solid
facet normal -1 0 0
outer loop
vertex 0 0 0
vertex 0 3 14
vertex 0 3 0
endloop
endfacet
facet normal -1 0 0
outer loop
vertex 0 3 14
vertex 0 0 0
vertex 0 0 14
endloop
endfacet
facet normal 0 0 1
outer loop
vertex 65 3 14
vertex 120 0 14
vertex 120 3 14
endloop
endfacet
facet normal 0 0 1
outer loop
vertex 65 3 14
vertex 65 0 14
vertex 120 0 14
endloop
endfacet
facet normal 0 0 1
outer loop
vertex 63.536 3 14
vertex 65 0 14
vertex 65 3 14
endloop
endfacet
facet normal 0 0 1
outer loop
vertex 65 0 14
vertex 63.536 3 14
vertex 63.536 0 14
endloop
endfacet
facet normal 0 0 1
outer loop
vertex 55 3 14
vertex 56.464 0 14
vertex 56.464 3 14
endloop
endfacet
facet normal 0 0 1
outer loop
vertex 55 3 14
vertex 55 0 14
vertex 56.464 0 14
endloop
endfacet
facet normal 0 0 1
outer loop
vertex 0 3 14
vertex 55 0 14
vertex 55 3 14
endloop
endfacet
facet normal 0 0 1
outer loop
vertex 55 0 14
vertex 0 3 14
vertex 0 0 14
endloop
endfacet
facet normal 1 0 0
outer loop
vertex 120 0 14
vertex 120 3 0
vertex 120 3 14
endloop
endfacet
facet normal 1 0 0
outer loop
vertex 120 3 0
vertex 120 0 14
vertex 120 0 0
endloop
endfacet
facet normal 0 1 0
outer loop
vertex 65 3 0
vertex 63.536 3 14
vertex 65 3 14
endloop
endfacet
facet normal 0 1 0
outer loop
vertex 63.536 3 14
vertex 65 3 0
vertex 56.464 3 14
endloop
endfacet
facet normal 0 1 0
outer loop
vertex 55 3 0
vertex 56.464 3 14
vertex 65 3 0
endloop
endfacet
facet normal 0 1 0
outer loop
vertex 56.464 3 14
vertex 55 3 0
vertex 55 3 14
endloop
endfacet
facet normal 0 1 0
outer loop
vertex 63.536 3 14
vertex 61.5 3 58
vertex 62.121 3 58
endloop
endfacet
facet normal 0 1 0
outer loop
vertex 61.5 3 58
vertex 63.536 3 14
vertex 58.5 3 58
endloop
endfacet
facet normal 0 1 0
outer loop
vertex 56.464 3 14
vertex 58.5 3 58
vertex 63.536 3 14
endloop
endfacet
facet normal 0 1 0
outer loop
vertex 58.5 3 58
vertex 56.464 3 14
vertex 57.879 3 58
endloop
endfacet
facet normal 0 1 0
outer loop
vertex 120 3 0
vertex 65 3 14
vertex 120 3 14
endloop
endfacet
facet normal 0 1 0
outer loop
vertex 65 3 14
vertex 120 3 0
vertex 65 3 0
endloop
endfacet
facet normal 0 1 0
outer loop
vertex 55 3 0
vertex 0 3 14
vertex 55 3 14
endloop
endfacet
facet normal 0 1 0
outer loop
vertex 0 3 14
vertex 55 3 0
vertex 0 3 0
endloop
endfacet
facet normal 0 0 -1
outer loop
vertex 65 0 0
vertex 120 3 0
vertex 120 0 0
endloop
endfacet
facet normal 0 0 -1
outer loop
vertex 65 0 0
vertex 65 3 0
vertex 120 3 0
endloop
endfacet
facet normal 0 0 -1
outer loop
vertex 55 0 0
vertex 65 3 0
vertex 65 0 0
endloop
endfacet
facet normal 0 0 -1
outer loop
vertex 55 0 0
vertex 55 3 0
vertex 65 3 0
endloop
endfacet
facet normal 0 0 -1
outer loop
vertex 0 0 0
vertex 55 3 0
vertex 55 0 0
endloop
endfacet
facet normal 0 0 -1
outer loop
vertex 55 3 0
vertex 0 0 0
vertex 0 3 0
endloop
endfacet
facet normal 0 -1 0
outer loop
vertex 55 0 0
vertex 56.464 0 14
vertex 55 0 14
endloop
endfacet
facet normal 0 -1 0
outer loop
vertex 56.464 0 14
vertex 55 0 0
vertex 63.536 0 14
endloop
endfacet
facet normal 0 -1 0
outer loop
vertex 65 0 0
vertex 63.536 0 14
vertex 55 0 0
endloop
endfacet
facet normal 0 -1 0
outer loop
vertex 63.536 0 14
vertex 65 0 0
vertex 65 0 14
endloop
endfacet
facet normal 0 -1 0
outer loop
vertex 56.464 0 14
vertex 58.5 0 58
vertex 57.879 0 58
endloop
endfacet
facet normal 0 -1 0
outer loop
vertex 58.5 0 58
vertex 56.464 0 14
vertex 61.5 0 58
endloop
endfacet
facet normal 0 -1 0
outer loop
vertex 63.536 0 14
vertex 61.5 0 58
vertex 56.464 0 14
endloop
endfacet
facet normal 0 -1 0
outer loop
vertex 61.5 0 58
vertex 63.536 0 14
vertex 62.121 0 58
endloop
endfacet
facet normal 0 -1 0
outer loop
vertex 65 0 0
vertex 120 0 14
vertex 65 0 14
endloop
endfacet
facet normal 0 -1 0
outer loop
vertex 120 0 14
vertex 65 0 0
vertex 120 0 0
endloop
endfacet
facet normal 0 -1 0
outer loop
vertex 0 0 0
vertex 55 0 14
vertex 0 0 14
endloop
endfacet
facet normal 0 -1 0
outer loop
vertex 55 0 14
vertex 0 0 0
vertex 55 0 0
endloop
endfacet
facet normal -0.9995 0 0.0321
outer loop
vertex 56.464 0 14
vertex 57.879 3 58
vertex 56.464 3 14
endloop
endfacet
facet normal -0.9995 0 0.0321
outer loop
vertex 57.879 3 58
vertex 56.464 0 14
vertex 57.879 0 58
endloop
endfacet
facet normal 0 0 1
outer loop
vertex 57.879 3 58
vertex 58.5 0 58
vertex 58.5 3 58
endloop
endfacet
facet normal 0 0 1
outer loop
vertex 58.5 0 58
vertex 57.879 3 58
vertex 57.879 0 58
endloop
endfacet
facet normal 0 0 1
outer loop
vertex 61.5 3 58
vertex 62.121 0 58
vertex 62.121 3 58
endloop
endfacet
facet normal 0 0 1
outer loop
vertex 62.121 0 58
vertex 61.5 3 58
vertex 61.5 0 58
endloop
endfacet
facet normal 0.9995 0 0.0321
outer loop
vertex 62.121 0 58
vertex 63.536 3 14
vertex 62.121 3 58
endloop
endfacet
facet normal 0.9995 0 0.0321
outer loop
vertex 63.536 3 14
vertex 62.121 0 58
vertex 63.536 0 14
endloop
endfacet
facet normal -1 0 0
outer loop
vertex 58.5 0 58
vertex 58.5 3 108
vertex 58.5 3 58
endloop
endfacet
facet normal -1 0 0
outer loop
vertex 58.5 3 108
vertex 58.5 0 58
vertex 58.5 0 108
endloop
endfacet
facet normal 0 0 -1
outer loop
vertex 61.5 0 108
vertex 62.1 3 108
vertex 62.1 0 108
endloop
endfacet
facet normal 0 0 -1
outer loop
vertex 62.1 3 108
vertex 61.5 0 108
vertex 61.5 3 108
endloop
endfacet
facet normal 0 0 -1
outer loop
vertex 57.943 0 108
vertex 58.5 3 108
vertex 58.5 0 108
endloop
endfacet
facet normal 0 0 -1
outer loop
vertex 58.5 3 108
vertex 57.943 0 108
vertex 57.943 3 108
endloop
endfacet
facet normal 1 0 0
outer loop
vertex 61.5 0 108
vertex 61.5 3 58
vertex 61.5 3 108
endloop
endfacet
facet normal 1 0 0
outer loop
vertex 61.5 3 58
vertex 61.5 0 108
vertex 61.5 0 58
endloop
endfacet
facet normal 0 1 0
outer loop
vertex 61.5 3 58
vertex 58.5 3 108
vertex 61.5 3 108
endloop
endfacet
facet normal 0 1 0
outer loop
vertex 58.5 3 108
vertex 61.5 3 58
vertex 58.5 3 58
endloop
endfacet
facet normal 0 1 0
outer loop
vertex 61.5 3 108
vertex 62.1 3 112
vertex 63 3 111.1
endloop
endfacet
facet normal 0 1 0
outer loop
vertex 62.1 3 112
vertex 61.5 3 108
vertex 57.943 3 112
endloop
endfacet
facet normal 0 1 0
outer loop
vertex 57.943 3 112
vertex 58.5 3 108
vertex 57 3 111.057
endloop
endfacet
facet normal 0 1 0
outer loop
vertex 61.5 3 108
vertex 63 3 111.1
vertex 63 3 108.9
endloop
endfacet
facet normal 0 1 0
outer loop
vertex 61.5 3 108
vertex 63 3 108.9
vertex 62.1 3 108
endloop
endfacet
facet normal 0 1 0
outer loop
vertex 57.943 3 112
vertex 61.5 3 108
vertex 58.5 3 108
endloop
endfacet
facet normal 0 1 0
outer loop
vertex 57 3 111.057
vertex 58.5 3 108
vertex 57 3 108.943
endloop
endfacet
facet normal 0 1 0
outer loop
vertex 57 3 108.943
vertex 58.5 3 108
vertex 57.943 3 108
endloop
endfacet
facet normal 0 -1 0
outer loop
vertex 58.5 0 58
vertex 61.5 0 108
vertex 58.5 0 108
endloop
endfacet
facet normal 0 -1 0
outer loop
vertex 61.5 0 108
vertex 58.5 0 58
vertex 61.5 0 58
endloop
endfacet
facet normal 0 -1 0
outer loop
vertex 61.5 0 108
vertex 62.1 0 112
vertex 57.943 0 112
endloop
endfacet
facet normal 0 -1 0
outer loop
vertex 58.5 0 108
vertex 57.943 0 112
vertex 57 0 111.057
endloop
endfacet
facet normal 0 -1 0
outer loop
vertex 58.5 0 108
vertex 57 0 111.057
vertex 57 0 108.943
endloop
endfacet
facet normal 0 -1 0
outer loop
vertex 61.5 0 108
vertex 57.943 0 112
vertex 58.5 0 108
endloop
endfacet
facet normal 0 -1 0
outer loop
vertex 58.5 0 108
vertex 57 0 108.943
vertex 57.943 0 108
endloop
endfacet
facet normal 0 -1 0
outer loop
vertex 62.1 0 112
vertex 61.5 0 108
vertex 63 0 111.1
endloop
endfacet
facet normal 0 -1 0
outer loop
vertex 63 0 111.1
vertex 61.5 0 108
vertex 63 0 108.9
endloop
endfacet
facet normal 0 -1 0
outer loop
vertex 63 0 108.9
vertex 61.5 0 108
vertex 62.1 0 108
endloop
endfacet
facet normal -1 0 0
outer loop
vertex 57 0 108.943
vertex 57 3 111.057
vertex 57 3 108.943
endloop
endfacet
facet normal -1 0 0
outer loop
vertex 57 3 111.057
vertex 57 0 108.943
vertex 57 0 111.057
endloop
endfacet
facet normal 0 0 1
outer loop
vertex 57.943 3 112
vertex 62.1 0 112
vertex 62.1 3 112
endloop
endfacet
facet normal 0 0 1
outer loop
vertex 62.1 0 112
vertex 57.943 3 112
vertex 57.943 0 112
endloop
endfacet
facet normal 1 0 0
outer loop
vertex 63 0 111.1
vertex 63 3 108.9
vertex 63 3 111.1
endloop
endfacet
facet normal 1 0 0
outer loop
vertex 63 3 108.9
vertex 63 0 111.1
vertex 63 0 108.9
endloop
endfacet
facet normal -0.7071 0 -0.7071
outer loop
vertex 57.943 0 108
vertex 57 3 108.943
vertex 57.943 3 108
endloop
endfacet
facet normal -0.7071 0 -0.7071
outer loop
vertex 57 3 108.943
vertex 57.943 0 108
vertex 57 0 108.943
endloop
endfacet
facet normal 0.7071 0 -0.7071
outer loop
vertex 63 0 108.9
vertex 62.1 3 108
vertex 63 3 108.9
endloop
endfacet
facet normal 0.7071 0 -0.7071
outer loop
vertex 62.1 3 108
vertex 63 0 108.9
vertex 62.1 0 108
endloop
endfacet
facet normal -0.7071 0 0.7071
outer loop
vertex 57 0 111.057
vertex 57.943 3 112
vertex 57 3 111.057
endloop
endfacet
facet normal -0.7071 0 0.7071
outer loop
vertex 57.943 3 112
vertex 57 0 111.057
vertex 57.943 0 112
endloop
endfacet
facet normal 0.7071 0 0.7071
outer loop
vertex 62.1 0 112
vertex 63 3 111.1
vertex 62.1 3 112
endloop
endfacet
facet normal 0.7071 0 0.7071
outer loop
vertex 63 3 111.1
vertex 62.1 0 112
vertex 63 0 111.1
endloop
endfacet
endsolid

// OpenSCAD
$fn=100;

difference() {
    union() {
        cube([120,3,14]);
        translate([60,1.5,14])rotate(45)cylinder(44,10/2,6/2, $fn=4);
        translate([58.5,0,58]) cube([3,3,50]);
        translate([57,0,108]) cube([6,3,4]);
    }
    translate([55,-3,0]) cube([10,3,58]);
    translate([55,3,0]) cube([10,3,58]);
    
    translate([53.8,-2,107.9]) rotate(45, v=[0,1,0]) cube([3,10,3]);
    translate([62,-2,107.9]) rotate(45, v=[0,1,0]) cube([3,10,3]);

    translate([53.8,-2,112.1]) rotate(45, v=[0,1,0]) cube([3,10,3]);
    translate([62,-2,112.1]) rotate(45, v=[0,1,0]) cube([3,10,3]);
}
